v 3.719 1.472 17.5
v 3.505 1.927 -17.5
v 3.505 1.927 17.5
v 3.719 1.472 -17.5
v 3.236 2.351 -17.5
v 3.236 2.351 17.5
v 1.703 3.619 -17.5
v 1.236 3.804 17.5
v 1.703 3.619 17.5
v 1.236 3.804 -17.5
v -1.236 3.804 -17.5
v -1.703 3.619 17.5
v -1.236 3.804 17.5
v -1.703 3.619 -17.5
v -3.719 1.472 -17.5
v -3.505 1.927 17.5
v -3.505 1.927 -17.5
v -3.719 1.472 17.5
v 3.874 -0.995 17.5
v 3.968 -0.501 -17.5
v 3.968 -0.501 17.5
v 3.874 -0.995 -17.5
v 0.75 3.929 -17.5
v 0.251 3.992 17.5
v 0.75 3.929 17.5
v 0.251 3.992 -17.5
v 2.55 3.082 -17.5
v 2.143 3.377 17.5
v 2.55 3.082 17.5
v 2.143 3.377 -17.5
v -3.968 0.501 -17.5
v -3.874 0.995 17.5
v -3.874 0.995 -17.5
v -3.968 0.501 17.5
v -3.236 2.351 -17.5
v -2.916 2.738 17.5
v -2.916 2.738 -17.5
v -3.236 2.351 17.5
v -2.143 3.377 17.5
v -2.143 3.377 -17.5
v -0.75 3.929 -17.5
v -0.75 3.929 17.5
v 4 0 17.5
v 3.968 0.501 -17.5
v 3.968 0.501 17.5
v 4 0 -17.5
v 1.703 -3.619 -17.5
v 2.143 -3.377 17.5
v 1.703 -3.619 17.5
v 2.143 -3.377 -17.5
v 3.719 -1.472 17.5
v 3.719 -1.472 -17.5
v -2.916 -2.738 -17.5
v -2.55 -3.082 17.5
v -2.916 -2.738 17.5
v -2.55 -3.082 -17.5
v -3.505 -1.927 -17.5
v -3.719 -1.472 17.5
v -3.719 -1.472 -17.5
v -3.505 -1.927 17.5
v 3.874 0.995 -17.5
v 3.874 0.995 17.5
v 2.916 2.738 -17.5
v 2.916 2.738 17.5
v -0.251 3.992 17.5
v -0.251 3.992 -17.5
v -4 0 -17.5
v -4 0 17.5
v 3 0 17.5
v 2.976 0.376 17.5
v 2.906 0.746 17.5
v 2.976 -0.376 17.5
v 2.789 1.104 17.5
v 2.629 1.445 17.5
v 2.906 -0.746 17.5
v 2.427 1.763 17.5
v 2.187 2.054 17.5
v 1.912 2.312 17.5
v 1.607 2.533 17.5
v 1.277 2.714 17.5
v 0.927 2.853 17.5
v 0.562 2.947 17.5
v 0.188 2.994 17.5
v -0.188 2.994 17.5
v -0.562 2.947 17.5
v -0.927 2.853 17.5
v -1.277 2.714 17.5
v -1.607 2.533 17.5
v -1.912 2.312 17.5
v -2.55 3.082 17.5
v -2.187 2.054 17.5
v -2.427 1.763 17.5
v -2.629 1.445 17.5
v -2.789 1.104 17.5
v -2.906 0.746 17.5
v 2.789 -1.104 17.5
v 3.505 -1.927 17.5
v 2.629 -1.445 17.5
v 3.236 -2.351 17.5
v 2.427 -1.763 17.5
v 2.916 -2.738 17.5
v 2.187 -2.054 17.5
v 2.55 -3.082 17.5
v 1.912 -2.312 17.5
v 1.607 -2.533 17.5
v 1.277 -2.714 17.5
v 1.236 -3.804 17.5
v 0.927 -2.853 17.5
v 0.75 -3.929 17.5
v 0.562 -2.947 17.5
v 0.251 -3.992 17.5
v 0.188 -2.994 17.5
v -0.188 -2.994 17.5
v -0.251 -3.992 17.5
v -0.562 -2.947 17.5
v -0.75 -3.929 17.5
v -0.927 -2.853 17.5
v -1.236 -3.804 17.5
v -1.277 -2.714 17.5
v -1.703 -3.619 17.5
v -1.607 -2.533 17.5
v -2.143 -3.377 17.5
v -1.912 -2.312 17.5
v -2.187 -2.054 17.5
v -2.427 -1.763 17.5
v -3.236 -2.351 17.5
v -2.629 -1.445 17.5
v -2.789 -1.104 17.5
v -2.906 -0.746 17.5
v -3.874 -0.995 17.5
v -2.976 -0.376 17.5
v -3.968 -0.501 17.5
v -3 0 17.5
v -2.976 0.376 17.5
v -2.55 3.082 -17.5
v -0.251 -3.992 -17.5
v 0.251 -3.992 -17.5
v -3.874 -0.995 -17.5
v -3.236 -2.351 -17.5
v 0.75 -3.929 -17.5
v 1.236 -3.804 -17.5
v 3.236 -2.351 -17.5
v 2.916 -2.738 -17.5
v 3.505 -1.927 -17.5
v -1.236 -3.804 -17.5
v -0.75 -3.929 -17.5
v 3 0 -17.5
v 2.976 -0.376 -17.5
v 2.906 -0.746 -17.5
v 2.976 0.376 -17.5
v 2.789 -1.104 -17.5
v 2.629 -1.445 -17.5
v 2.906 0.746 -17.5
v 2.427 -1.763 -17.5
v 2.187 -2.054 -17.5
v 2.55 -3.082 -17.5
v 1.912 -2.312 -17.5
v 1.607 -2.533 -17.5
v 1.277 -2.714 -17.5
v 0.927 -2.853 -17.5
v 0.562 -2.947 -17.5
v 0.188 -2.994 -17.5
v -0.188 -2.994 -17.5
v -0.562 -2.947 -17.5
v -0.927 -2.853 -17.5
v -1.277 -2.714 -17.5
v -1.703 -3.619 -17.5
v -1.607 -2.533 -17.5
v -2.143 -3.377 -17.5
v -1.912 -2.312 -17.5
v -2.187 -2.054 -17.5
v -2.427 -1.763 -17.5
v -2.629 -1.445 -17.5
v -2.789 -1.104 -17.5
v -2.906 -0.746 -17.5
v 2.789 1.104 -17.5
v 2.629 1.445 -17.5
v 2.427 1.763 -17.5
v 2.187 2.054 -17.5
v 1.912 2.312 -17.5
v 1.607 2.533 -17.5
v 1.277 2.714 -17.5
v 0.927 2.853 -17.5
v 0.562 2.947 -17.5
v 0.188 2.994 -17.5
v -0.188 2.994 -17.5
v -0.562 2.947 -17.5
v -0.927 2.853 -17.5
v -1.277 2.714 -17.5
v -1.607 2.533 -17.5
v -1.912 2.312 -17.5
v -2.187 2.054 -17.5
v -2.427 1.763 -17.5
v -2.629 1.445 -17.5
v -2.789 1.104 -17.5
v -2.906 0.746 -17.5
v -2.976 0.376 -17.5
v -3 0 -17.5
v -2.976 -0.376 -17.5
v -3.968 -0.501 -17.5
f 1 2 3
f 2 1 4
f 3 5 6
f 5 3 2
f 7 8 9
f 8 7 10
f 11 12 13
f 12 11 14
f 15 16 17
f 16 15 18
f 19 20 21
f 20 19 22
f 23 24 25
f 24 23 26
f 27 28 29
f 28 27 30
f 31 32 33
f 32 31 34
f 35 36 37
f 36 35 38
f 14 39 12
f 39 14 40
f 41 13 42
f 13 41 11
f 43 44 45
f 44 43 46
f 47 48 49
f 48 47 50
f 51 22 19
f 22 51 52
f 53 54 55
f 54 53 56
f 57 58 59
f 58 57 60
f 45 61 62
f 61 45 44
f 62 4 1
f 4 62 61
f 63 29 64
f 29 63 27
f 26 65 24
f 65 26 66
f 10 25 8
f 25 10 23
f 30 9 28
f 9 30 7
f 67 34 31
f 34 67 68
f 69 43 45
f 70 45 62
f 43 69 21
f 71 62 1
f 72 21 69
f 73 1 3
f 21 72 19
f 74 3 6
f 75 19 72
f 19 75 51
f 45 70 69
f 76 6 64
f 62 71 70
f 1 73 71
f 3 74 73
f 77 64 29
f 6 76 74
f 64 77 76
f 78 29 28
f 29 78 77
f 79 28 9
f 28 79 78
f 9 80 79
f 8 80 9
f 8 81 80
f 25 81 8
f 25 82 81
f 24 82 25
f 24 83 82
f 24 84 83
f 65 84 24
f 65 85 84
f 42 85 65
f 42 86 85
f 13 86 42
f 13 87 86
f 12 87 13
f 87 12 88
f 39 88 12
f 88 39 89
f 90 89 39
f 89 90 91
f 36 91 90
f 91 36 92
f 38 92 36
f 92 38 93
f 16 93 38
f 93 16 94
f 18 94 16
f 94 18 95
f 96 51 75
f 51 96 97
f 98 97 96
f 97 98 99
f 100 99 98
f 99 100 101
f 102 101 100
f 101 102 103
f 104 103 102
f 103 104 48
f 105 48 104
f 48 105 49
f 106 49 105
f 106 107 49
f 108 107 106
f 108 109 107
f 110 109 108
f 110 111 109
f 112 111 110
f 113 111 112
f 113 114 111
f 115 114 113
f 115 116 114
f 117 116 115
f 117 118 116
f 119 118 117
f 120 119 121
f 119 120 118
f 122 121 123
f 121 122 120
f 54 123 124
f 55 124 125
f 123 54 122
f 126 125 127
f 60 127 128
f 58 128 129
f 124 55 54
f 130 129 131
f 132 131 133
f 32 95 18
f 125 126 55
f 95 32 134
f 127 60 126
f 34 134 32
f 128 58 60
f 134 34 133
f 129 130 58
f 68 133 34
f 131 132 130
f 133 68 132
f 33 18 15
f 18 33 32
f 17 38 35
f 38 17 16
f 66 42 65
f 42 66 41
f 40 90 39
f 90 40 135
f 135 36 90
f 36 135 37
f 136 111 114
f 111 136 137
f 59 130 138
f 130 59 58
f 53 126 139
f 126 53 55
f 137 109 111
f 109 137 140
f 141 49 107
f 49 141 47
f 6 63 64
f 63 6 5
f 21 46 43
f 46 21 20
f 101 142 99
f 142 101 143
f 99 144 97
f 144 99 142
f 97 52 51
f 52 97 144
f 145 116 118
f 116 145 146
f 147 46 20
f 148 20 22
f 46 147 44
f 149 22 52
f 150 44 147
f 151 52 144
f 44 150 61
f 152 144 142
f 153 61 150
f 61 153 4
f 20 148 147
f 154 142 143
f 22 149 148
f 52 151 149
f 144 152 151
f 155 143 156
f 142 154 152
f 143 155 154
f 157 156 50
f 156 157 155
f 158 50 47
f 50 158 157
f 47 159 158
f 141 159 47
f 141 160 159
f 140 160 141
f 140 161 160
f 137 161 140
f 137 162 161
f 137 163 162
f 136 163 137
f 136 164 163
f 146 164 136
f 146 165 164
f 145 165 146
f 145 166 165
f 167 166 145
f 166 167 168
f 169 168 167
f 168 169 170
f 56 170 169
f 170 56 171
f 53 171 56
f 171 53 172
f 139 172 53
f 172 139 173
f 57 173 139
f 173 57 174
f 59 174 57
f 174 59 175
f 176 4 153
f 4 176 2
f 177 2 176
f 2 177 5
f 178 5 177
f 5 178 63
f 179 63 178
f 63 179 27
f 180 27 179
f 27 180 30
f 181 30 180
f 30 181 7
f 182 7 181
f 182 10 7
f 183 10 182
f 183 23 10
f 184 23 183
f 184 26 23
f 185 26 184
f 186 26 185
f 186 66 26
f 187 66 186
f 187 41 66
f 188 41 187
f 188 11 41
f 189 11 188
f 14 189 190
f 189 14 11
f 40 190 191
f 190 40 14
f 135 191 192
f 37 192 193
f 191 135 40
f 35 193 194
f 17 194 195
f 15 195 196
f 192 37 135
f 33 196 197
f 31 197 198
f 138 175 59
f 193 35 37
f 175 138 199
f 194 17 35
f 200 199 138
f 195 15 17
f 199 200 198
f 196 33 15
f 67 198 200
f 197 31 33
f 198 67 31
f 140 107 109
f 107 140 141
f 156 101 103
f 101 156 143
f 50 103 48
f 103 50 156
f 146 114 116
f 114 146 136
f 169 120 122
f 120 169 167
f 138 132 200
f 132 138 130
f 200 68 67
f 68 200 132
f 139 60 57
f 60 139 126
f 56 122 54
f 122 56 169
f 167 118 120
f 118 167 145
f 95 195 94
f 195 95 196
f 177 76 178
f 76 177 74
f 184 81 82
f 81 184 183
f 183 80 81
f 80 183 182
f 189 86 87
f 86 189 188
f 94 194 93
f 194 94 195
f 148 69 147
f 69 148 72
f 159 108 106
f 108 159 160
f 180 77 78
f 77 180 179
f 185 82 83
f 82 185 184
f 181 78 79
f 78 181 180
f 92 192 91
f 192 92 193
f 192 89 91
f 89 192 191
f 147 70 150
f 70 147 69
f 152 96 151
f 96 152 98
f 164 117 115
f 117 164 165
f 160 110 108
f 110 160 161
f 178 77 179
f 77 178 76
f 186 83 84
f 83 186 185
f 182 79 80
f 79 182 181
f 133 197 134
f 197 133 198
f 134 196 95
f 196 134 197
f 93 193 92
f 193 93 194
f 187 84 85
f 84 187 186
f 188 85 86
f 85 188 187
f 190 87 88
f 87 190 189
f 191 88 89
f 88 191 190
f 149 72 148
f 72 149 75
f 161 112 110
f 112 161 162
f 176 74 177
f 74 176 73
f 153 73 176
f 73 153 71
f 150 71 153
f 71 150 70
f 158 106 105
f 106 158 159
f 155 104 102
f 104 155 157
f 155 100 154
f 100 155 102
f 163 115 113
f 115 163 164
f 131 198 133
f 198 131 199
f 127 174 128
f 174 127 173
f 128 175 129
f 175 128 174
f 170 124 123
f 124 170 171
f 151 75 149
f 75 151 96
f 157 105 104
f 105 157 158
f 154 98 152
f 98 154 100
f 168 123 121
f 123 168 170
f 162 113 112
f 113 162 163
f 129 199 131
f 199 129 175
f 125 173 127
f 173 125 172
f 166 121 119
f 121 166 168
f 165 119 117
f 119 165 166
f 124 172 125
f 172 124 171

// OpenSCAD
$fn = 50;


difference() {
	union() {
		translate(v = [0, 0, -17.5000000000]) {
			cylinder(h = 35, r = 4.0000000000);
		}
	}
	union() {
		translate(v = [0, 0, -100.0000000000]) {
			cylinder(h = 200, r = 3);
		}
	}
}
